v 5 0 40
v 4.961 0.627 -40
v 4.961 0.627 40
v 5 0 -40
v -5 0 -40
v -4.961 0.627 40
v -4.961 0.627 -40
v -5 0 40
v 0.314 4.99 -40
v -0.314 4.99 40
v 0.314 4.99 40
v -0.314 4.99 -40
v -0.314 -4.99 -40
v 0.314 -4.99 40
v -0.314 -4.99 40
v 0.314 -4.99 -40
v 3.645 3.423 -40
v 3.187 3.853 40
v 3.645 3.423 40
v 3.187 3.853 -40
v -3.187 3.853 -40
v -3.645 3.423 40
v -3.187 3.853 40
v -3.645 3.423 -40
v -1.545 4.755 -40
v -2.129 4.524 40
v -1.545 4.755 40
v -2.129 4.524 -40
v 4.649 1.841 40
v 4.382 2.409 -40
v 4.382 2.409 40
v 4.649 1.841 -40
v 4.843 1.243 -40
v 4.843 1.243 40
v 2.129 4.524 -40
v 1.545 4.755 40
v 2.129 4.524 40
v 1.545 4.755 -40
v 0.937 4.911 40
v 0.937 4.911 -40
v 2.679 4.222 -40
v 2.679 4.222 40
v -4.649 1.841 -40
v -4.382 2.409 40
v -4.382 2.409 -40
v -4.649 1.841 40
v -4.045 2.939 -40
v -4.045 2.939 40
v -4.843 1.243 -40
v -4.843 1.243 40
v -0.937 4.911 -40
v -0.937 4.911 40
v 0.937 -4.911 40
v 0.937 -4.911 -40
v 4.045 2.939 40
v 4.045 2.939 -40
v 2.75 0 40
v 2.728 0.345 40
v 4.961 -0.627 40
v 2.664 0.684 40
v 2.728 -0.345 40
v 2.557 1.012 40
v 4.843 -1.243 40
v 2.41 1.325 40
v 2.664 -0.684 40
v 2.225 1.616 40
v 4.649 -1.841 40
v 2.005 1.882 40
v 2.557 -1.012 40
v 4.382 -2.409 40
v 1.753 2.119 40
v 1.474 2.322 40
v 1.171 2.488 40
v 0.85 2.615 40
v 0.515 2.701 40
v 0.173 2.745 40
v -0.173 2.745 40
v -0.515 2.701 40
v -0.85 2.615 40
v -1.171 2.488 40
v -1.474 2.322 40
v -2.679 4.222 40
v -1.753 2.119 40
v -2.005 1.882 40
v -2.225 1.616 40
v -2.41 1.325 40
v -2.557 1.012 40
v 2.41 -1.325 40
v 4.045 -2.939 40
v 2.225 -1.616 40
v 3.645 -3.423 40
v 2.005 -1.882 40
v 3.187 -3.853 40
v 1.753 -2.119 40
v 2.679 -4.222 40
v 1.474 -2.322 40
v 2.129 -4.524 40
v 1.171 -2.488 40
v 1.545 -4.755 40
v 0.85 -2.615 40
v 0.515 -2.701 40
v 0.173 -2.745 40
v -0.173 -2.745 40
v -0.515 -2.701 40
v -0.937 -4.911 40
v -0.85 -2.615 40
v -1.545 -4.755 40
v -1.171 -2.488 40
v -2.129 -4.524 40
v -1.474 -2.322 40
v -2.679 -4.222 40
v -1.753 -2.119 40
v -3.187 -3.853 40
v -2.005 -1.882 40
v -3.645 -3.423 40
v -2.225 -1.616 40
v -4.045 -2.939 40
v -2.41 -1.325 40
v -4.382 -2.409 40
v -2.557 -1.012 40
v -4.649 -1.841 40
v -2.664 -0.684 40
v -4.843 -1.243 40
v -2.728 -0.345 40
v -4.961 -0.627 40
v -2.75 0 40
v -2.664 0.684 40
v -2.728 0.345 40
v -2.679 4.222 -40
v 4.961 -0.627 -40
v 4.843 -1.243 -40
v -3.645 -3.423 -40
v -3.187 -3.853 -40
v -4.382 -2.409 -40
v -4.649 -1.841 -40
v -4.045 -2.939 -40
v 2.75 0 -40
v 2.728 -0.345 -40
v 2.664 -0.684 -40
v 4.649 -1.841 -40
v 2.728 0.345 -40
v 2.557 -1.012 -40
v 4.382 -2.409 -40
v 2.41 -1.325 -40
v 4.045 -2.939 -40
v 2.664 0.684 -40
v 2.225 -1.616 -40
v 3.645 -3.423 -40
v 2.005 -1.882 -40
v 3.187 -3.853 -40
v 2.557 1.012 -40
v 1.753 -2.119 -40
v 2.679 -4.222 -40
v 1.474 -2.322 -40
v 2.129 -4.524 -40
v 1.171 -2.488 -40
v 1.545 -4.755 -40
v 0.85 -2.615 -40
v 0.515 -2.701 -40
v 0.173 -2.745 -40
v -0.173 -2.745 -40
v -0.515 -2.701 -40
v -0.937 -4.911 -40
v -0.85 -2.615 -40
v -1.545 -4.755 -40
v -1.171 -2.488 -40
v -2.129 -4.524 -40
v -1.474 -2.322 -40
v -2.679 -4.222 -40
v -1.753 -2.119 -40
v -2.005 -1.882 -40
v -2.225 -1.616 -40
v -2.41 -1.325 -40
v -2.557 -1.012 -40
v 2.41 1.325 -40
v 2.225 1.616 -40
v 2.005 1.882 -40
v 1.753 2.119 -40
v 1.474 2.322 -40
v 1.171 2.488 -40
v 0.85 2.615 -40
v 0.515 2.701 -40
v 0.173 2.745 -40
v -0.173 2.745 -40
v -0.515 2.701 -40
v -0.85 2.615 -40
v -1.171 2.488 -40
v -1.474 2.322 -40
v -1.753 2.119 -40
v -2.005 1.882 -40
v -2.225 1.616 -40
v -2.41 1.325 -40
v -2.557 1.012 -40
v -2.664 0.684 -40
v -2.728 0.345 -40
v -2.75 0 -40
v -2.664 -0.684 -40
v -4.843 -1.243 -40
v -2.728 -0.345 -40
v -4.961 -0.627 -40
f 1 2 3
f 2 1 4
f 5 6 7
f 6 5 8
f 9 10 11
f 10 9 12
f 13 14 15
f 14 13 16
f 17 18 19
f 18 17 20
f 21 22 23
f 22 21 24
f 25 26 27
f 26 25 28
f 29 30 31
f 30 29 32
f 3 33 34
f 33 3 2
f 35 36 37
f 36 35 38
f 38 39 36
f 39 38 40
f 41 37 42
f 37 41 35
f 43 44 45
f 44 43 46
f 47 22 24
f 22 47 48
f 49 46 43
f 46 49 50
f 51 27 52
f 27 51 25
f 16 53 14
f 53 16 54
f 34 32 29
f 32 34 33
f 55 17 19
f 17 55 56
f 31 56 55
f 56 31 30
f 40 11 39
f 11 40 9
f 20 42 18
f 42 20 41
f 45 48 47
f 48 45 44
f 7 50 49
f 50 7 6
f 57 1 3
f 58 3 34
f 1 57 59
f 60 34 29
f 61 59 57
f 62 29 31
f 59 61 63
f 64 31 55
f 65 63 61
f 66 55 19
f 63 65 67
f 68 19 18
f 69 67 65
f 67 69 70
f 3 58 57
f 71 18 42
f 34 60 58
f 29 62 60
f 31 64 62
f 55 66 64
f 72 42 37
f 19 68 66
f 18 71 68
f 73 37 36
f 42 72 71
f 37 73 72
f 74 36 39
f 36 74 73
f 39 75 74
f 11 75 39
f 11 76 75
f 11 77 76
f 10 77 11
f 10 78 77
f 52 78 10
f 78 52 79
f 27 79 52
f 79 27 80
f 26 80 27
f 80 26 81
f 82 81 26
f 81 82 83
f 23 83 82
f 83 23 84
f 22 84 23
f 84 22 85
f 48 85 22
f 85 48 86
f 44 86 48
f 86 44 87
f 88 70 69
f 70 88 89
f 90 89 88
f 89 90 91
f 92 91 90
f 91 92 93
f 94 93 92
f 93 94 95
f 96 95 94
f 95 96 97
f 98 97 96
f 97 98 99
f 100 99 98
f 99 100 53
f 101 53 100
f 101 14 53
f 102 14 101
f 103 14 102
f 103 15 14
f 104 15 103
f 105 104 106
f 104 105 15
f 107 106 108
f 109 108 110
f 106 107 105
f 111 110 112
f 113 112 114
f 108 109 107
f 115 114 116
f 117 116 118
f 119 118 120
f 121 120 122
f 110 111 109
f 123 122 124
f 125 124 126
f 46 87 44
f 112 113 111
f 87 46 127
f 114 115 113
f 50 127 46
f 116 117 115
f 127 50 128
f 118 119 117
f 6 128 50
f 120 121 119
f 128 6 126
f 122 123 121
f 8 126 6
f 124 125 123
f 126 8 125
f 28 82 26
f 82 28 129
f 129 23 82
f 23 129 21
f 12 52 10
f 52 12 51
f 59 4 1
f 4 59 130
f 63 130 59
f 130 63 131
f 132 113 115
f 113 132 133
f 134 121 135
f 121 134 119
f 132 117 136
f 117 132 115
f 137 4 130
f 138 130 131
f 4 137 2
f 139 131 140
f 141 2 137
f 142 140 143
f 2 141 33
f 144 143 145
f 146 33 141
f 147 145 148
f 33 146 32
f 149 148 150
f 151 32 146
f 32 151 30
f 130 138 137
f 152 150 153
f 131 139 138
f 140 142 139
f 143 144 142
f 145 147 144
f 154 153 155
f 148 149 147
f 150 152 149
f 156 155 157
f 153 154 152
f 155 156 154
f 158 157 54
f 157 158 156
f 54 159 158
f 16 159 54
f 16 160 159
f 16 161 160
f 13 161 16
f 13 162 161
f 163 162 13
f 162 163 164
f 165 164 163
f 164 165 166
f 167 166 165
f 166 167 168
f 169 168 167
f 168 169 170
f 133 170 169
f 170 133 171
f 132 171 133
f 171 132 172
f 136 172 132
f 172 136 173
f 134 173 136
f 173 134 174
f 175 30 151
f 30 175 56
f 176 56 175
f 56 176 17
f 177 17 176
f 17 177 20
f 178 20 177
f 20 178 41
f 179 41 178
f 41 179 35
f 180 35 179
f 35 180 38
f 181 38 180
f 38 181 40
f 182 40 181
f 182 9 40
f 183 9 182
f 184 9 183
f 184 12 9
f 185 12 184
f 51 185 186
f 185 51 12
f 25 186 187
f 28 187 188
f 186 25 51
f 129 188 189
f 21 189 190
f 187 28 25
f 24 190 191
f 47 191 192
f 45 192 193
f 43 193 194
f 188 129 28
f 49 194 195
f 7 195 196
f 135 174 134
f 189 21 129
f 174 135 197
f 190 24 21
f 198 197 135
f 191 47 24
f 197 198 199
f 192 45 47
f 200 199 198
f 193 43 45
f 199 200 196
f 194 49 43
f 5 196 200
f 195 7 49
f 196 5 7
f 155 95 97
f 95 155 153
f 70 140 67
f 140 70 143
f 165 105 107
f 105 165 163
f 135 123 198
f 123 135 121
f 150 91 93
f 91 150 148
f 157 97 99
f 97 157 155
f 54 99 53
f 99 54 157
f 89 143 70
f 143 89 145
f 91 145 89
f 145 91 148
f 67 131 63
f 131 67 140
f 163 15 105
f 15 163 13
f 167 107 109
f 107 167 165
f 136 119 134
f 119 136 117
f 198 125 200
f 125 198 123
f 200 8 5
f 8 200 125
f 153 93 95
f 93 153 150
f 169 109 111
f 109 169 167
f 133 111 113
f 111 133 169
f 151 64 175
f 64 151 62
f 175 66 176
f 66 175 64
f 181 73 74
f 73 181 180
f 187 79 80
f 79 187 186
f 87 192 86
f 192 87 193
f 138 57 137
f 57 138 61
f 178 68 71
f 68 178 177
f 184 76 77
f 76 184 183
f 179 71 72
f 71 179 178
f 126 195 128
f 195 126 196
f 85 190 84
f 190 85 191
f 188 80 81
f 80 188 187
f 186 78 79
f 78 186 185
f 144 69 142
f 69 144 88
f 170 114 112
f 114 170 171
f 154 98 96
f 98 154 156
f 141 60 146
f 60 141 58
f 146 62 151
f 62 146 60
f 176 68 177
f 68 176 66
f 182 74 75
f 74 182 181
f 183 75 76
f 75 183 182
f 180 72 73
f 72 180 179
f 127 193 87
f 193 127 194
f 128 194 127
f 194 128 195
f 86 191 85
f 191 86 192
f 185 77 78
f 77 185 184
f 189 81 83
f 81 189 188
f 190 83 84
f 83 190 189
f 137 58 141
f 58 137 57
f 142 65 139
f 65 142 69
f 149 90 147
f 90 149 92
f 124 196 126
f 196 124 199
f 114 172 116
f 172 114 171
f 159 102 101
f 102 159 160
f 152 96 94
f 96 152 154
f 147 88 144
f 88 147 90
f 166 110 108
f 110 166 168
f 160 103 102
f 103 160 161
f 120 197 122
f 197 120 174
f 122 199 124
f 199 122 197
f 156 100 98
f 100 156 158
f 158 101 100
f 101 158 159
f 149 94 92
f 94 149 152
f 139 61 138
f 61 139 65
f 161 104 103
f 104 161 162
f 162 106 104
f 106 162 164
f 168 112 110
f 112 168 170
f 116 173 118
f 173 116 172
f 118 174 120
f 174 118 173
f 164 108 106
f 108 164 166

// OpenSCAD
$fn = 50;


difference() {
	union() {
		translate(v = [0, 0, -40.0000000000]) {
			cylinder(h = 80, r = 5.0000000000);
		}
	}
	union() {
		translate(v = [0, 0, -100.0000000000]) {
			cylinder(h = 200, r = 2.7500000000);
		}
	}
}
